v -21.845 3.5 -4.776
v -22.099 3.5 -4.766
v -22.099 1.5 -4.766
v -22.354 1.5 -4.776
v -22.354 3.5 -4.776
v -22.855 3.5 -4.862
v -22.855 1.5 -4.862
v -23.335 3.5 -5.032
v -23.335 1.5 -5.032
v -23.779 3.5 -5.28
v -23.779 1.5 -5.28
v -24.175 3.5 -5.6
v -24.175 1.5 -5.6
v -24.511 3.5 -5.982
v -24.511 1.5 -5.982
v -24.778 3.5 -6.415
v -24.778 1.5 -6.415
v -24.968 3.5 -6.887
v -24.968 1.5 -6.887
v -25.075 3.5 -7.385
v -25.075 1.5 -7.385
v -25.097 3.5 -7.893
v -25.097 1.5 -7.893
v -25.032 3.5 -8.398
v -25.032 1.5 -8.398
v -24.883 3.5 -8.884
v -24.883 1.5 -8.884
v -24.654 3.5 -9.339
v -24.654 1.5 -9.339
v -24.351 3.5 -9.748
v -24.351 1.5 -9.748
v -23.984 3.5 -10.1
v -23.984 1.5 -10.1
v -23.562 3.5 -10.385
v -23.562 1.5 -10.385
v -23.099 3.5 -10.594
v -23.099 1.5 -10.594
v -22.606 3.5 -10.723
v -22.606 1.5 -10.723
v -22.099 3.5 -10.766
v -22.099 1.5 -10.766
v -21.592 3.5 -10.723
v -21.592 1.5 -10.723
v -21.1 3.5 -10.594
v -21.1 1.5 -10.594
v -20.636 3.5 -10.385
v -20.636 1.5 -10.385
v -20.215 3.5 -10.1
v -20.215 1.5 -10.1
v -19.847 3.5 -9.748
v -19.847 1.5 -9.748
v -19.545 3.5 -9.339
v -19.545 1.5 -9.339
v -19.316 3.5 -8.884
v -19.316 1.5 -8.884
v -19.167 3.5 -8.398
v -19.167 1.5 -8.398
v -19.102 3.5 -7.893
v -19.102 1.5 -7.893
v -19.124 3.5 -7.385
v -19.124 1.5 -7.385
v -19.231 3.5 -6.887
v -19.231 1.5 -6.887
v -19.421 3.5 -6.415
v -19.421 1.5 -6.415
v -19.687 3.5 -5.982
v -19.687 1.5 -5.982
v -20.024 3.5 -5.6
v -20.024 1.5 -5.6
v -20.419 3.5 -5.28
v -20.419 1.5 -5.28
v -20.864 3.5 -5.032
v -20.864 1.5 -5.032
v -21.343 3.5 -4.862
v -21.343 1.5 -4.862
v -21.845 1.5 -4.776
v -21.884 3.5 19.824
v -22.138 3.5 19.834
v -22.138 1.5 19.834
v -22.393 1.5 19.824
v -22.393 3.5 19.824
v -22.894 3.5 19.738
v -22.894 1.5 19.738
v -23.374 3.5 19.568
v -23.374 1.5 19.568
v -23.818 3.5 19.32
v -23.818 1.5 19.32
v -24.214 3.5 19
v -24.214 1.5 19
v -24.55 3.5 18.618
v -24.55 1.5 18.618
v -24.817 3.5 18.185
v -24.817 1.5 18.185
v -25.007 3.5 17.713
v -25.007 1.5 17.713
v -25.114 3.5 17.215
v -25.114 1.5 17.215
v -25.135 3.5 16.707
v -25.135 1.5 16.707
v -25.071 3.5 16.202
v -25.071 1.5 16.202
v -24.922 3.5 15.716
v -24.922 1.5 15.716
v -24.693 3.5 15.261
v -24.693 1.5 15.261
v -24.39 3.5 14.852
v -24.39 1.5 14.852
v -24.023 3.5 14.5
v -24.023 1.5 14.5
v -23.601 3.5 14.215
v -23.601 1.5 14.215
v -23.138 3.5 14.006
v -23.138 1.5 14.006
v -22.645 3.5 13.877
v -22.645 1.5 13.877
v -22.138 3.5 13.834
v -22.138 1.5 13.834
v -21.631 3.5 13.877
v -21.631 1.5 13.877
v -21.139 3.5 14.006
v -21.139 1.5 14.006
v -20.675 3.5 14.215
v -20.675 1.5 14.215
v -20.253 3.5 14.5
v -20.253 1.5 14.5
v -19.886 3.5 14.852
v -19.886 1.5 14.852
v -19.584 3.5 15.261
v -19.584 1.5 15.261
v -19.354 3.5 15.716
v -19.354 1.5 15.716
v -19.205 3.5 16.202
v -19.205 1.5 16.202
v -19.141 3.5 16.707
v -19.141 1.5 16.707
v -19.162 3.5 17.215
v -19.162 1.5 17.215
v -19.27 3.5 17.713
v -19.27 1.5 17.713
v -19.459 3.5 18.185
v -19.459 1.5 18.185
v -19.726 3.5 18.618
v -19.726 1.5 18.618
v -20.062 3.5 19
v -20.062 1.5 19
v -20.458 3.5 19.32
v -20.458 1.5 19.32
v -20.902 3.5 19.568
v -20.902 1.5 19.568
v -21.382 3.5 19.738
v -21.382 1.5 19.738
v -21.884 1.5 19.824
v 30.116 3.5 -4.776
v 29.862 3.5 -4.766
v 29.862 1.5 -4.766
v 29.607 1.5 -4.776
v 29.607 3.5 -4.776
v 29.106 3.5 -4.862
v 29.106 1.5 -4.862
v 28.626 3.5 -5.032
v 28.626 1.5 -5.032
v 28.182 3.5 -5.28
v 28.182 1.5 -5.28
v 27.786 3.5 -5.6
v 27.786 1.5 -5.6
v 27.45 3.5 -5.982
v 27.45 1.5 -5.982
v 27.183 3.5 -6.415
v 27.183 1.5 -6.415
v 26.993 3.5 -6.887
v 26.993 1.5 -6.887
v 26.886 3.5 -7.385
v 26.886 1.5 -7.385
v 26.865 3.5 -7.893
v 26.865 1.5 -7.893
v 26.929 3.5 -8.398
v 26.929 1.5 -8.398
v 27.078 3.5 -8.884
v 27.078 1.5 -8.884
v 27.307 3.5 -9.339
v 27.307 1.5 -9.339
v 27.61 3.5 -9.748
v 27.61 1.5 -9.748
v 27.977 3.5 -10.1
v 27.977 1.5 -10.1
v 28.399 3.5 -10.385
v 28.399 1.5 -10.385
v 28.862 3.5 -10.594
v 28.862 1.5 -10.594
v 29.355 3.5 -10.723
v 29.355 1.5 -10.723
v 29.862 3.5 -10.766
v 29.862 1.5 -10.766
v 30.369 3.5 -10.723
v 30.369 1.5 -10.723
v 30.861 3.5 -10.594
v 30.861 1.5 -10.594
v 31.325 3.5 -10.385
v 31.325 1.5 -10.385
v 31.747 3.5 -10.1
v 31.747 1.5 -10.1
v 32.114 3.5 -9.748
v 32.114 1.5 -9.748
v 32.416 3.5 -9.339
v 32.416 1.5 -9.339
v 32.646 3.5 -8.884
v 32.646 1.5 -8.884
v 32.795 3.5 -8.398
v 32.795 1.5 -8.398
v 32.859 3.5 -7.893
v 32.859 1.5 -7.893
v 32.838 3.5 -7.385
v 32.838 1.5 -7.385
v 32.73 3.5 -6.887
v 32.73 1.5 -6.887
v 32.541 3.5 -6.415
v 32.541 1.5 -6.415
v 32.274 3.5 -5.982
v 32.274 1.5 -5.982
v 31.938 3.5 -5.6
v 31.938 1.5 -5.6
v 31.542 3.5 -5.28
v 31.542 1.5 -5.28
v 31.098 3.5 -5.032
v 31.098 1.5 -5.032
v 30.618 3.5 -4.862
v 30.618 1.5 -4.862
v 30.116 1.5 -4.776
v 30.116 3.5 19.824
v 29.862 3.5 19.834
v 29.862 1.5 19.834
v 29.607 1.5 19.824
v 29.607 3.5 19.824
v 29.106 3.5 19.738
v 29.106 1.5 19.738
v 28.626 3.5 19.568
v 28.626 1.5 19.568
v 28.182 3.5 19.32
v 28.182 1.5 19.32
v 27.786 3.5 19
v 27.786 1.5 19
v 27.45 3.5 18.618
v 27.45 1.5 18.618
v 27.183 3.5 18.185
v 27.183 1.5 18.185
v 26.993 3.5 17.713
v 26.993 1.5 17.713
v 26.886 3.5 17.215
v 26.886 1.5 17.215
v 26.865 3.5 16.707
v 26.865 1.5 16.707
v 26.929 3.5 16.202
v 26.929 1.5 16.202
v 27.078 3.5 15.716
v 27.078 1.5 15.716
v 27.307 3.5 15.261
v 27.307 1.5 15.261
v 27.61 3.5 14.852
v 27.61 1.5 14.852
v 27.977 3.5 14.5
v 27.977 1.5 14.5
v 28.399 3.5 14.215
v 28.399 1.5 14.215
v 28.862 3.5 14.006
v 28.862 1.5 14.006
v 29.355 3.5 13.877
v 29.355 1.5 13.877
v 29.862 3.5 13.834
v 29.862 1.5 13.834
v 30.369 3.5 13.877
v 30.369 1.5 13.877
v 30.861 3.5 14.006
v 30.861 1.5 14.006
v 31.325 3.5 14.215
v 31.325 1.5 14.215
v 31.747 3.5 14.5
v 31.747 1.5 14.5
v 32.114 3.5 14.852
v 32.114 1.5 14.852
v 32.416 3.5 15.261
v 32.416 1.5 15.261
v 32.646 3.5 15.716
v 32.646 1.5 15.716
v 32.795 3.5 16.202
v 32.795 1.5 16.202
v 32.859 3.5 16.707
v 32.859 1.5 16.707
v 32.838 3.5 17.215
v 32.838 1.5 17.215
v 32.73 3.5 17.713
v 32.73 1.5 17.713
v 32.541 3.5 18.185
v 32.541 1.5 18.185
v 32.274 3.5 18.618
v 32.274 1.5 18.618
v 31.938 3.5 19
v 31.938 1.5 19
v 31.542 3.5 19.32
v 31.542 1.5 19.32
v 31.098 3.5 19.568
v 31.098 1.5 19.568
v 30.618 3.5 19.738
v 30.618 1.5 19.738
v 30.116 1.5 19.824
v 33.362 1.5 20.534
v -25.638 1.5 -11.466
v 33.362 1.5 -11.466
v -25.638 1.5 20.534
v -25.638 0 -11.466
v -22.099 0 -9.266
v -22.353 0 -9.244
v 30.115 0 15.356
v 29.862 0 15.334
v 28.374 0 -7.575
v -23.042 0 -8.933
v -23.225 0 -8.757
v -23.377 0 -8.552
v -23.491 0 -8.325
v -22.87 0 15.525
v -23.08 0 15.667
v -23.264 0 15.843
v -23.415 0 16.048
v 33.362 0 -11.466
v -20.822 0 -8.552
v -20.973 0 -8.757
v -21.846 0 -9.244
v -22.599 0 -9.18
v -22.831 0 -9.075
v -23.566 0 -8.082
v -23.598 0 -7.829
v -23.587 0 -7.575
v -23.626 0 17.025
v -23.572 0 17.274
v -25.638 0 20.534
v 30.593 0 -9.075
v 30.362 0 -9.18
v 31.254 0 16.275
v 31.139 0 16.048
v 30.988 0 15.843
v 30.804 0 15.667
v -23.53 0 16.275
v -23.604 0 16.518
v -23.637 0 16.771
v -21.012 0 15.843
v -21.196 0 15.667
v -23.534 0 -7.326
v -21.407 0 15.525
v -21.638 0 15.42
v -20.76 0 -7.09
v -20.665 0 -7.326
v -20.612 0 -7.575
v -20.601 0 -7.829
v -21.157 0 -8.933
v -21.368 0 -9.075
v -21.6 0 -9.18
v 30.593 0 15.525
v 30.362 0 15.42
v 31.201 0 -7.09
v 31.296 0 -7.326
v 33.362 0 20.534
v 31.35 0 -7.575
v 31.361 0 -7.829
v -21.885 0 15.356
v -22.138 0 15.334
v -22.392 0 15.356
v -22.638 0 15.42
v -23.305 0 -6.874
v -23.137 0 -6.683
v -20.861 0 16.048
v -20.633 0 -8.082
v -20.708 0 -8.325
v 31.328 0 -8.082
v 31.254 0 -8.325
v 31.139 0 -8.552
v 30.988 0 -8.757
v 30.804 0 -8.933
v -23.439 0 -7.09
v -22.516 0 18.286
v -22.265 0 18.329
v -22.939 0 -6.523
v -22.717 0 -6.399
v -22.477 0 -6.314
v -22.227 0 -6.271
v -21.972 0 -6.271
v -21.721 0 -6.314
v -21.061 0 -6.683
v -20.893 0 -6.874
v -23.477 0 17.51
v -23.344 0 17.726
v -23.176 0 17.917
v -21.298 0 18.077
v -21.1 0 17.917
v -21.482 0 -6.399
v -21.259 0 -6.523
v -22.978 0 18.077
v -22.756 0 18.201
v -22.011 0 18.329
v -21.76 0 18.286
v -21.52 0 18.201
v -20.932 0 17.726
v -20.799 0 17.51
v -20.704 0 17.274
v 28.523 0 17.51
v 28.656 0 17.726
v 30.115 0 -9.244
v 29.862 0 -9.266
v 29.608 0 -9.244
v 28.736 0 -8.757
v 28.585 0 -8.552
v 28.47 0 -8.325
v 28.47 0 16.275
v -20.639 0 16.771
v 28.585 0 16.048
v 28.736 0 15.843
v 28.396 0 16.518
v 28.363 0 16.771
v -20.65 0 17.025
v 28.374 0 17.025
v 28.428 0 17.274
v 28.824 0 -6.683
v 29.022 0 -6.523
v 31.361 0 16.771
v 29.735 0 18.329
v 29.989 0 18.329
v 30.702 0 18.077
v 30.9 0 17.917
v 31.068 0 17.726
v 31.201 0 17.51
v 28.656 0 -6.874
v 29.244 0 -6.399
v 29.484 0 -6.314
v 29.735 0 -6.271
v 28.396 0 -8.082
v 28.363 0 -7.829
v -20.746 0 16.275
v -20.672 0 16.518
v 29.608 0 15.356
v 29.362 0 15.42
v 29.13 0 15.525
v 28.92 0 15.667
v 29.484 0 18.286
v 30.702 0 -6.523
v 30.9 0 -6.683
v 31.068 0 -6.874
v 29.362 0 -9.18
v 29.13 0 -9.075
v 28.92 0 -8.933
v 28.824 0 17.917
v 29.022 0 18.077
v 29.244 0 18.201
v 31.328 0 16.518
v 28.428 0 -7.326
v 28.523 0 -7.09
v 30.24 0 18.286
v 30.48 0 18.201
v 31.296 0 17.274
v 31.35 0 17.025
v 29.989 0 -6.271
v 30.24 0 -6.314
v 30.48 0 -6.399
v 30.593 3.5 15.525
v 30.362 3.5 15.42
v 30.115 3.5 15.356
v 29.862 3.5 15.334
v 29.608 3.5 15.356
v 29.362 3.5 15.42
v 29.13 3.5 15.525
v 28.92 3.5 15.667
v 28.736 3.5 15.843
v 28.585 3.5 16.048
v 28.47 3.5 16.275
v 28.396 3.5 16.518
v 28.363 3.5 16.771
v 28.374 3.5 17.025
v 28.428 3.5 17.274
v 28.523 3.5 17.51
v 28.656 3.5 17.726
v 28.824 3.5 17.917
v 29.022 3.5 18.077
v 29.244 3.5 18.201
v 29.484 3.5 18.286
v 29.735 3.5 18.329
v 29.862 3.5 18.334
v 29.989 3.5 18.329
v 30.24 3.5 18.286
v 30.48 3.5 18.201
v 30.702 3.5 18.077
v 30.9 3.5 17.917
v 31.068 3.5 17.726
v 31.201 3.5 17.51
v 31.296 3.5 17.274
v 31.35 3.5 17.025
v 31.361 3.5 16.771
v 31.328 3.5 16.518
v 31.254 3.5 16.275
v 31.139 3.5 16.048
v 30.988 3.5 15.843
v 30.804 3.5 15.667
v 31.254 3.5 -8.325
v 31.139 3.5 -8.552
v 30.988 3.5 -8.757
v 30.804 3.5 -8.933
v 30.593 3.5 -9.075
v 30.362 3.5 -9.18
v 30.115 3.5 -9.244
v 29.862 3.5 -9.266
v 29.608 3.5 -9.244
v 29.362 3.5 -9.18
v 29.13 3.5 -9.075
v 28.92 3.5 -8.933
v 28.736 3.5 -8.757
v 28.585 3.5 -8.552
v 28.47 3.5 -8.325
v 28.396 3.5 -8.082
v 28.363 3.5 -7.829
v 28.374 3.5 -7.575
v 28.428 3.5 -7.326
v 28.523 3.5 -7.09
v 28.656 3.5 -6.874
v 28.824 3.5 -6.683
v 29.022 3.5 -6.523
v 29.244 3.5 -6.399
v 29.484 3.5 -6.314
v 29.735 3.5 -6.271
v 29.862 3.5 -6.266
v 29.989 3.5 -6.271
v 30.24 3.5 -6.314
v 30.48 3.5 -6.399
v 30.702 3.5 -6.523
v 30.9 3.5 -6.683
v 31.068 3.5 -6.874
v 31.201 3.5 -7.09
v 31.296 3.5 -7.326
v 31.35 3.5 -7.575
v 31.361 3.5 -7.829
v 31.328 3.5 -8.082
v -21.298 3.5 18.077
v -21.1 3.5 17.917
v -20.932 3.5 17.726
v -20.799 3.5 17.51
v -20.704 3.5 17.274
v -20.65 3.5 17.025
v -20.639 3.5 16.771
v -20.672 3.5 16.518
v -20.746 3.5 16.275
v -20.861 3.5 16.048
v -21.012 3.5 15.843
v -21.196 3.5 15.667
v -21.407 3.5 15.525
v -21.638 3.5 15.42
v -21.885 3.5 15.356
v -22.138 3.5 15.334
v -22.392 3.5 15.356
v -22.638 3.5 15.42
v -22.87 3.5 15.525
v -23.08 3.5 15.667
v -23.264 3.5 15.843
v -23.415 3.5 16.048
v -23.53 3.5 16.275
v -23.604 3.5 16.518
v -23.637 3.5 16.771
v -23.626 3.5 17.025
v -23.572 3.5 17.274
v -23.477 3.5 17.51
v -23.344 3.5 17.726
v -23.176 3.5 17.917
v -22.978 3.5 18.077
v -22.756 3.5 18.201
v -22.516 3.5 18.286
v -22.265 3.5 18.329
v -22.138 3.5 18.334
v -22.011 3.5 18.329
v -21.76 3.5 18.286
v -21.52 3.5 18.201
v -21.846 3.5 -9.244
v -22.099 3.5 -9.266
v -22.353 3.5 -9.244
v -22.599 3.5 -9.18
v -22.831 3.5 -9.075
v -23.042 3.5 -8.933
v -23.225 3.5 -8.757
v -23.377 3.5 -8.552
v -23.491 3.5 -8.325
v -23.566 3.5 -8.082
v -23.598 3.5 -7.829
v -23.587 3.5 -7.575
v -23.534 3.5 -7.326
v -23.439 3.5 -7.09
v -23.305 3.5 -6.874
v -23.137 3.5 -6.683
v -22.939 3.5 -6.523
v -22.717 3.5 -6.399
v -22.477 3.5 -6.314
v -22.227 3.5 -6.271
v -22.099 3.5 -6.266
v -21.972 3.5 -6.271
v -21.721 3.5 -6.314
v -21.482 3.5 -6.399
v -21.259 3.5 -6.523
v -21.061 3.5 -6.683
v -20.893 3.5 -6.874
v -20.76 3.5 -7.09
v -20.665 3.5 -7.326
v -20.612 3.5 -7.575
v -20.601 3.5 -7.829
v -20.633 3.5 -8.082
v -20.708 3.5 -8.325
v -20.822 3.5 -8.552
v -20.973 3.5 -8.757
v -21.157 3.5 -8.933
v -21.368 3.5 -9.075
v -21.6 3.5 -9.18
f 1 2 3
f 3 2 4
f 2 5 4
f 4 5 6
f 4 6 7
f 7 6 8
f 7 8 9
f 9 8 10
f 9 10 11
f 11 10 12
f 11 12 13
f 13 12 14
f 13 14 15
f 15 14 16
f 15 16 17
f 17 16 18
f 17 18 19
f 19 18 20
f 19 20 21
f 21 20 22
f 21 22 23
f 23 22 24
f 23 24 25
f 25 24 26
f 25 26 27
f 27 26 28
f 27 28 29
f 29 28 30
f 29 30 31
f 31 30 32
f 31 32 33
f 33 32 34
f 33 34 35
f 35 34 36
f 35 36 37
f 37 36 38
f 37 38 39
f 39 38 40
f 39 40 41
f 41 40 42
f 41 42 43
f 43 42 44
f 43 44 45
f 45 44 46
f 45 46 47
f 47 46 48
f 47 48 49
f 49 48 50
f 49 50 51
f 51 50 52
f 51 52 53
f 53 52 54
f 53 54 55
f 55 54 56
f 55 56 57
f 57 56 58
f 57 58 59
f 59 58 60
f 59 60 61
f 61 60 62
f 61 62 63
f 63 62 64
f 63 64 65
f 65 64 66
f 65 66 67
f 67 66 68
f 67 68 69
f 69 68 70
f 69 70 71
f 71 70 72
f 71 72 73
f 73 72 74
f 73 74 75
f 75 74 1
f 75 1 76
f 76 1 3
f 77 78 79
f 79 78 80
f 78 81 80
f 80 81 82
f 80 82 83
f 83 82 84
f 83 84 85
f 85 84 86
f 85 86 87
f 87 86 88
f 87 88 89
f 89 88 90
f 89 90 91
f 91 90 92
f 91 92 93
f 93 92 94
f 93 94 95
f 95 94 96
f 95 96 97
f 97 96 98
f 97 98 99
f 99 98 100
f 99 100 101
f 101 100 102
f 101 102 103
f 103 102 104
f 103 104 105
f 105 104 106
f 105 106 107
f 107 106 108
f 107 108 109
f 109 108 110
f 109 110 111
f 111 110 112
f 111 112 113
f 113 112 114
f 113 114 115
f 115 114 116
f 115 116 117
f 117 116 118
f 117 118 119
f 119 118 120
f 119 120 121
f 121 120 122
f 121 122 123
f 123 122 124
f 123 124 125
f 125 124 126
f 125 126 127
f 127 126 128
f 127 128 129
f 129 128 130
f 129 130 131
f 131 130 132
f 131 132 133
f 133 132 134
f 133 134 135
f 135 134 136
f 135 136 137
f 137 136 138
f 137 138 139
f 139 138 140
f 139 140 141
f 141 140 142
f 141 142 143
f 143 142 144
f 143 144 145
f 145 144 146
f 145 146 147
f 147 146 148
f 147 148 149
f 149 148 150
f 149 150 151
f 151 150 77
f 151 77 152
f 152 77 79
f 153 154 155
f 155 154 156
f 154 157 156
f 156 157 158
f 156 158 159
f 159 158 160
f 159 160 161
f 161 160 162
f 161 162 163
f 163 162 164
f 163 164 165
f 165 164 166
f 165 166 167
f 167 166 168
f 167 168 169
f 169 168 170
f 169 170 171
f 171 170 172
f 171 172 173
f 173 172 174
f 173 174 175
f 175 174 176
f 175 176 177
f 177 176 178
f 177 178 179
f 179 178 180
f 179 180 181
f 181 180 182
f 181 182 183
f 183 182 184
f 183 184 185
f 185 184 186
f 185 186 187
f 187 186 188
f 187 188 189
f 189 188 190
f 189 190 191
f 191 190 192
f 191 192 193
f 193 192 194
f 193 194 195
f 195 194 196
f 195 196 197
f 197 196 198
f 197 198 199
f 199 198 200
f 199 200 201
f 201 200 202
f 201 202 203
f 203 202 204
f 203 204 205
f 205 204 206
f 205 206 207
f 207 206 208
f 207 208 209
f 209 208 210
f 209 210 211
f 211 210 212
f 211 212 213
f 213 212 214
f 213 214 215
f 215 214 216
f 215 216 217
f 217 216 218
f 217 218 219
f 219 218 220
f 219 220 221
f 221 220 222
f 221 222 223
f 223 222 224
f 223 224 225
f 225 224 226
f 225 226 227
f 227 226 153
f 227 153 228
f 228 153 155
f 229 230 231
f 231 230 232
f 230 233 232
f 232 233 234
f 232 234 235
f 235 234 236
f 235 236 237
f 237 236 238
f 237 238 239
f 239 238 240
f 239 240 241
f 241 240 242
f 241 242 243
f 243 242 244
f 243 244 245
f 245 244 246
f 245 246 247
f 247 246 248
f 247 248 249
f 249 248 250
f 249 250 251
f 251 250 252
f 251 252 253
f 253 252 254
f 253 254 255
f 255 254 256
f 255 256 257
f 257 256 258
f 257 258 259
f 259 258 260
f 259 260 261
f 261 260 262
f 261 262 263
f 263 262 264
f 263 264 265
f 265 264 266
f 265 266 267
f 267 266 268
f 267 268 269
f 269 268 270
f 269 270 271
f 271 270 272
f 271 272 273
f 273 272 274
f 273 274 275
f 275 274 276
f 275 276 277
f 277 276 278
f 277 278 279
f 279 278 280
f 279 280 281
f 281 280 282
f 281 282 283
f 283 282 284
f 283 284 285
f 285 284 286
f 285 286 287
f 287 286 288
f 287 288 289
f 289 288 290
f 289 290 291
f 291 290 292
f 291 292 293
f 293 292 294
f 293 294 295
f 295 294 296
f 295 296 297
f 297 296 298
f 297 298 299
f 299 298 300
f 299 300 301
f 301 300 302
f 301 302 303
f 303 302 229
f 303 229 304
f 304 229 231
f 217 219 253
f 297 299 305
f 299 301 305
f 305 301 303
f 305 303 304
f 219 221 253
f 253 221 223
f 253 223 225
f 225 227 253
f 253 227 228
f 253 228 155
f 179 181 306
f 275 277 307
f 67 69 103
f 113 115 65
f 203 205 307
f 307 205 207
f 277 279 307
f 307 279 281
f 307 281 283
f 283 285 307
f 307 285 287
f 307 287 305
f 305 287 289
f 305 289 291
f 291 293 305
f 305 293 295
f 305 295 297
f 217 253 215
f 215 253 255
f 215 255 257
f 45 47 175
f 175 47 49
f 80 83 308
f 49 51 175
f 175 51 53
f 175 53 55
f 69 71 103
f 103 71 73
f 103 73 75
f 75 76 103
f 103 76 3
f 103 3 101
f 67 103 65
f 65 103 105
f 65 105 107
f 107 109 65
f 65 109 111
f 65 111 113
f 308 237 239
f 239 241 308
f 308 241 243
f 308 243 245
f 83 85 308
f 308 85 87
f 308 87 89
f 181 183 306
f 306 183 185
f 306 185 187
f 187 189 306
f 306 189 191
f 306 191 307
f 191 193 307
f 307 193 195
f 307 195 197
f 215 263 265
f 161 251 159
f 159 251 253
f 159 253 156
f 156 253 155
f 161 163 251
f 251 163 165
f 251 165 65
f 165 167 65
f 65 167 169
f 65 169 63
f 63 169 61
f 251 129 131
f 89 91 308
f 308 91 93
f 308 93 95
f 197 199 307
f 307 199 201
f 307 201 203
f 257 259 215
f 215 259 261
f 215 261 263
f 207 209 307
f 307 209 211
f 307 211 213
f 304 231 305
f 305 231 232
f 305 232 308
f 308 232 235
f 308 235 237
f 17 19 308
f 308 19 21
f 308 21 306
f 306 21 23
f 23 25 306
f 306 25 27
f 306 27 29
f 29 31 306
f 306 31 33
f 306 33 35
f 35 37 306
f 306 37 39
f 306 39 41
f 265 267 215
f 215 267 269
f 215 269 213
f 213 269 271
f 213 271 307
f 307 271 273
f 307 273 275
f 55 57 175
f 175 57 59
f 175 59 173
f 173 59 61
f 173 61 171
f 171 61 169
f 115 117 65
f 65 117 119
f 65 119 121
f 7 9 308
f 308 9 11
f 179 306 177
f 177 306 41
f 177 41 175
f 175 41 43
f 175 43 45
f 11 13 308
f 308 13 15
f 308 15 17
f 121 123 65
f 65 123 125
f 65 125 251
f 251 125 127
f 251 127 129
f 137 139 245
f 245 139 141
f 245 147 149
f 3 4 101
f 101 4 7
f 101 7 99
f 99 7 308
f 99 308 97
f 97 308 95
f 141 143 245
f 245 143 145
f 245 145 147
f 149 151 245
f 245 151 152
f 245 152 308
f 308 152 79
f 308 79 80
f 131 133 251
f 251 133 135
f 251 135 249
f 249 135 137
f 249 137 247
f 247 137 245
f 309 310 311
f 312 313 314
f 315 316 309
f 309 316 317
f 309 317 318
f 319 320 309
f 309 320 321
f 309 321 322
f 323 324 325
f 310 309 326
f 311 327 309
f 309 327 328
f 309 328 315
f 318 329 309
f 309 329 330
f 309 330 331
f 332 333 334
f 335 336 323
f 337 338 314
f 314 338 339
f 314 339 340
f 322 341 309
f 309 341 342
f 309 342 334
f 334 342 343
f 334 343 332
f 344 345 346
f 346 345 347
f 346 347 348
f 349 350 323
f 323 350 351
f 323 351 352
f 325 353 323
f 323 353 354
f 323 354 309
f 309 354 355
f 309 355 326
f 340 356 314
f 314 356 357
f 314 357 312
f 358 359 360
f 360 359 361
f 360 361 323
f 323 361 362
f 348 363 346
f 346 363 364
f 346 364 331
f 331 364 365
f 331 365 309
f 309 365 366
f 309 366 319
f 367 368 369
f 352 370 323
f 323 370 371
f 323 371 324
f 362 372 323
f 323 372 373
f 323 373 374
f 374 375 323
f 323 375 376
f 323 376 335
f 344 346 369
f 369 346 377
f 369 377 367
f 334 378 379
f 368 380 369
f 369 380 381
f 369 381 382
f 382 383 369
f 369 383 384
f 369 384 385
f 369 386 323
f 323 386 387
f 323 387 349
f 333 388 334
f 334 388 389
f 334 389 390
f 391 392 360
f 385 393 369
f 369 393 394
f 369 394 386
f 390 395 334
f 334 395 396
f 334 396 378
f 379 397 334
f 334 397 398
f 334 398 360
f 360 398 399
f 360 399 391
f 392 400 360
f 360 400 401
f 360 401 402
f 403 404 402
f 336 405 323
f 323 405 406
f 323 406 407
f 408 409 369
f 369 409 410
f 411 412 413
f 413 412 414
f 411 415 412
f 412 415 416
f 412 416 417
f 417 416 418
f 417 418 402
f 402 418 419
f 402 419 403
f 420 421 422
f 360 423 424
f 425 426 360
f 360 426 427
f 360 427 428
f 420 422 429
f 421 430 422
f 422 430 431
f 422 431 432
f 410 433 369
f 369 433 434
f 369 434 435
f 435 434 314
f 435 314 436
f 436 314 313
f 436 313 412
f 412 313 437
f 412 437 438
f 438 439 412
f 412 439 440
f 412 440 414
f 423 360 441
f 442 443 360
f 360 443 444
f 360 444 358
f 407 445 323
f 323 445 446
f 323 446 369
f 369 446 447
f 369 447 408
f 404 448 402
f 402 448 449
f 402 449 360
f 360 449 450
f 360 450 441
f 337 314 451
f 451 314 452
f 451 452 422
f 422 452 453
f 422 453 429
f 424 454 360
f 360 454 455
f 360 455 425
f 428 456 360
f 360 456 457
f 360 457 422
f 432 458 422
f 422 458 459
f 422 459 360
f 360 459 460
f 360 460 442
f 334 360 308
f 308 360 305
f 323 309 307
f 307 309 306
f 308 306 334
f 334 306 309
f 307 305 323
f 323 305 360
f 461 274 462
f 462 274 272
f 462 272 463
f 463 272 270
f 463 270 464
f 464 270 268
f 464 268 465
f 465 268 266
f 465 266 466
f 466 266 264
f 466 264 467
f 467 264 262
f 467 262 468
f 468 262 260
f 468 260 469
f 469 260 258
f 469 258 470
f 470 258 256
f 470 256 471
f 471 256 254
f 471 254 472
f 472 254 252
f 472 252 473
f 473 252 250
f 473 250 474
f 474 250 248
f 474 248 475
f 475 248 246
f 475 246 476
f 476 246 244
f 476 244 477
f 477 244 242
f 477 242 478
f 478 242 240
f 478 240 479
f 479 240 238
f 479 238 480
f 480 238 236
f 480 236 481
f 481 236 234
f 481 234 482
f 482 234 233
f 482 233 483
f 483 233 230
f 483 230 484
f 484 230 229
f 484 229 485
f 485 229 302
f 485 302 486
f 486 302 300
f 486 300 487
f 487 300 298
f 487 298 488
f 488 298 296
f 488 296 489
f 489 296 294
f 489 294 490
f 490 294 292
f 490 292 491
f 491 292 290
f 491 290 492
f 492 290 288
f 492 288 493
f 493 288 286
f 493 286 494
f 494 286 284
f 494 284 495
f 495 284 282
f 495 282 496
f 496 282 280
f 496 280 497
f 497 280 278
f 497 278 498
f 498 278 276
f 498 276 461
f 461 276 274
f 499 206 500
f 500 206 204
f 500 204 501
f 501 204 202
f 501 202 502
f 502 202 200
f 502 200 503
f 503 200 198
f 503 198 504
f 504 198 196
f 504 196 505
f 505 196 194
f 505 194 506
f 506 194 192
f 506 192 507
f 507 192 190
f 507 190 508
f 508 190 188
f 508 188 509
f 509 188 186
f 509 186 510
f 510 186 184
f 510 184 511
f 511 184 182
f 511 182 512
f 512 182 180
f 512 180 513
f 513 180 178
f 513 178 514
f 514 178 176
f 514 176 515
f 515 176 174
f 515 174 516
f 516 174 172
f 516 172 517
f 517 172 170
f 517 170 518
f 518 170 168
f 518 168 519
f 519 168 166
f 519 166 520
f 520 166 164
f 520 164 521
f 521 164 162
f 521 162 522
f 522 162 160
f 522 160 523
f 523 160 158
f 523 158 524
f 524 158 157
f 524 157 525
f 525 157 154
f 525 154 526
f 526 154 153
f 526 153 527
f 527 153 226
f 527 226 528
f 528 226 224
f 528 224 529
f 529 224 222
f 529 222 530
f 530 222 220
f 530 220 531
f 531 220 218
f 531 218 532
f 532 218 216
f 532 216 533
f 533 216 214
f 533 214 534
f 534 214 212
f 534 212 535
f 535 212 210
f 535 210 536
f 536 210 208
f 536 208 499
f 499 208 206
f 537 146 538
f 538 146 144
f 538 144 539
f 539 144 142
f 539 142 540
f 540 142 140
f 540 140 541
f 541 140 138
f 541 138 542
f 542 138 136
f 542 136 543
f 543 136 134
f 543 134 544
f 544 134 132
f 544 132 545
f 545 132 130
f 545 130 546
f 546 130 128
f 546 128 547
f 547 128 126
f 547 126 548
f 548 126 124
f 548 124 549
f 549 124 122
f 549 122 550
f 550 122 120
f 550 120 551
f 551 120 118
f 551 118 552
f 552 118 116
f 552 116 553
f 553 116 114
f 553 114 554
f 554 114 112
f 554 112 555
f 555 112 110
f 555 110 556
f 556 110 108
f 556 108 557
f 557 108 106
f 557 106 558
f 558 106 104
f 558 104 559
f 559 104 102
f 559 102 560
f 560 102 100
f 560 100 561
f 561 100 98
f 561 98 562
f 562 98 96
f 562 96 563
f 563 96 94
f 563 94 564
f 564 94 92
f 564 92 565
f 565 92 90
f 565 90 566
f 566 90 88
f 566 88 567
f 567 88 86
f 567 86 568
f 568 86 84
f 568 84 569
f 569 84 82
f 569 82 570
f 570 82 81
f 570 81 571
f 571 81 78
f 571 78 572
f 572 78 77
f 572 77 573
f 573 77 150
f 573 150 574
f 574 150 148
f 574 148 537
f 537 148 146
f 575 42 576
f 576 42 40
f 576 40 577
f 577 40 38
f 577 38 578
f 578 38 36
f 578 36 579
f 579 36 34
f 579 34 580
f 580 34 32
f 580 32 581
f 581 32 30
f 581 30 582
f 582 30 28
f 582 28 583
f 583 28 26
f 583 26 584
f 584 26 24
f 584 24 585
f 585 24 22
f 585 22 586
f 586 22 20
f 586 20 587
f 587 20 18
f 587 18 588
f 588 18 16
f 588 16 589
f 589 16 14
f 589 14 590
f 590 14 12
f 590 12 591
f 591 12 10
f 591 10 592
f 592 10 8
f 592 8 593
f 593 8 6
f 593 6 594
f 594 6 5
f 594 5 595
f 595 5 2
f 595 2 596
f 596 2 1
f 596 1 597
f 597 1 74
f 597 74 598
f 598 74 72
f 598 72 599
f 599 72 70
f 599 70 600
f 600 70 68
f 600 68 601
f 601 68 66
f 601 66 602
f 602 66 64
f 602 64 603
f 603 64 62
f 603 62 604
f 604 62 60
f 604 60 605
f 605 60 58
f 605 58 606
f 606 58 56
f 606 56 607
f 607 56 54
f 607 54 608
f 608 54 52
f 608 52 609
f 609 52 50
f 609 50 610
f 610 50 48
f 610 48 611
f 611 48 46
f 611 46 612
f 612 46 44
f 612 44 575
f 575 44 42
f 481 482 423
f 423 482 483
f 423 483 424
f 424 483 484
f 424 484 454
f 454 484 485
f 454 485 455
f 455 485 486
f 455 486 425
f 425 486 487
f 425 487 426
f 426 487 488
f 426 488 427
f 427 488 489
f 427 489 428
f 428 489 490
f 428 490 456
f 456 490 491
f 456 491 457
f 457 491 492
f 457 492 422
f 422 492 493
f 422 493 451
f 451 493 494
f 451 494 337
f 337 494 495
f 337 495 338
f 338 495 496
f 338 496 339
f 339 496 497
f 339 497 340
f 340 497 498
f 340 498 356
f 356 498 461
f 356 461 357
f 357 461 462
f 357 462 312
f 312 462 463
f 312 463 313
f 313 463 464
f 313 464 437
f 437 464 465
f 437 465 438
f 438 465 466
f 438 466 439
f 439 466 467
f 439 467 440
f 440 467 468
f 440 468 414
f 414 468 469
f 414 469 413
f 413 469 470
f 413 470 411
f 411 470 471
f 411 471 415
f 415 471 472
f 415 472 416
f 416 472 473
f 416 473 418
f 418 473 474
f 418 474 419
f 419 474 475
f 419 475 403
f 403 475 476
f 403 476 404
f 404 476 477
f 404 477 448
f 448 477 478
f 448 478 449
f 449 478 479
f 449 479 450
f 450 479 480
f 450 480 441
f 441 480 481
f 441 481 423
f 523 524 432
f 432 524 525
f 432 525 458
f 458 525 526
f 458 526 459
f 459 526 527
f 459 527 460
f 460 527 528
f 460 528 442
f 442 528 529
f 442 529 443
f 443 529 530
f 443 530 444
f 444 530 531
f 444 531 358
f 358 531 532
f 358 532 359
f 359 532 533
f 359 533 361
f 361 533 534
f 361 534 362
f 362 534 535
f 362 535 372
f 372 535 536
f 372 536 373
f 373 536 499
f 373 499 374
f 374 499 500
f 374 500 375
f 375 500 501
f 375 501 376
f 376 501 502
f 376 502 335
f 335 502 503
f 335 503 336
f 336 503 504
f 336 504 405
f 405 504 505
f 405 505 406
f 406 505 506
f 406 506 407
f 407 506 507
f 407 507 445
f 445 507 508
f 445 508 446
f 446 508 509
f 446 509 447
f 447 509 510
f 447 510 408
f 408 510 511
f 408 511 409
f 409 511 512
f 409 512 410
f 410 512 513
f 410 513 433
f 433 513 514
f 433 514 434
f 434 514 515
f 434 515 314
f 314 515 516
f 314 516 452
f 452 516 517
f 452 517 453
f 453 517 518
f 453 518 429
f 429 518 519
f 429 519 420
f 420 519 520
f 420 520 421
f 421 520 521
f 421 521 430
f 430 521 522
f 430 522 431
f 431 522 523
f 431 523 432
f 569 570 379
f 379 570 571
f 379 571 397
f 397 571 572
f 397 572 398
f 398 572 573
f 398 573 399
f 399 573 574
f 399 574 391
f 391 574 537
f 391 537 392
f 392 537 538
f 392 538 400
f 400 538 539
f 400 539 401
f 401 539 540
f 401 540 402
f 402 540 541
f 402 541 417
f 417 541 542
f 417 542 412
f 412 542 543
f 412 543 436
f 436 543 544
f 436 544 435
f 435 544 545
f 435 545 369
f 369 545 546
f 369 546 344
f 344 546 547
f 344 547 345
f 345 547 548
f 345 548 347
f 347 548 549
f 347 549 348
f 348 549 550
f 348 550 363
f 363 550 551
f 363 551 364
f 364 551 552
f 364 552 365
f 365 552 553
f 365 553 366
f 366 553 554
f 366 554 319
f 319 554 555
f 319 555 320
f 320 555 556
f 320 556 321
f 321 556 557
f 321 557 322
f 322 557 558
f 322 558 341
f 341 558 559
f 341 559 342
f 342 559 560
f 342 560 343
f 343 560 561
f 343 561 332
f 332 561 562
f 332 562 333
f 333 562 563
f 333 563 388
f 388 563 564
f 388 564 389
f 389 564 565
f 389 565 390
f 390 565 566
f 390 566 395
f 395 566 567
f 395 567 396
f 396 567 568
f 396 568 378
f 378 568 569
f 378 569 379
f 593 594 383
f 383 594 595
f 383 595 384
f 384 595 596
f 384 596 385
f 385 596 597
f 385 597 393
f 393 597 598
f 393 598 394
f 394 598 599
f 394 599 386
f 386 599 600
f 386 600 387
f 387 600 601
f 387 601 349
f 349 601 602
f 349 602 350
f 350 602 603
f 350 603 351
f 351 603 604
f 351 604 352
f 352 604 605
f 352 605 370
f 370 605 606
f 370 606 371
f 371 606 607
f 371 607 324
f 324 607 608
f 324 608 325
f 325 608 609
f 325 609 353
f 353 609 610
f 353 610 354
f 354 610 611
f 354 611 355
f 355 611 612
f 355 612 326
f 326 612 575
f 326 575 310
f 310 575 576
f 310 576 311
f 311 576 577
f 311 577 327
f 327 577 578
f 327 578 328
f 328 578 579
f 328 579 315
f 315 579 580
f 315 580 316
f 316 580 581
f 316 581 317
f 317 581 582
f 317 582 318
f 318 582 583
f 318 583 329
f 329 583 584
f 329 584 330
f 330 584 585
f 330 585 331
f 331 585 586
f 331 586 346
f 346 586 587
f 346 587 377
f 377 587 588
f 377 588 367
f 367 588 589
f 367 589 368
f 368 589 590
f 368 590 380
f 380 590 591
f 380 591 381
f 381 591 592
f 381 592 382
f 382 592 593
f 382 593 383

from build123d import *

# Parameters (mm, degrees)
SKETCH_2_W          = 57
SKETCH_2_H          = 40.4
EXTRUDE_1_DEPTH     = 1.5
SKETCH_4_R          = 3
SKETCH_4_R_2        = 1.5
EXTRUDE_3_DEPTH     = 4
SKETCH_5_W          = 57
SKETCH_5_H          = 4.2
CUT_EXTRUDE_1_DEPTH = 2.5
SKETCH_6_W          = 1
SKETCH_6_H          = 32
EXTRUDE_4_DEPTH     = 1.5
SKETCH_8_R          = 3
SKETCH_8_R_2        = 1.5
CUT_EXTRUDE_3_DEPTH = 2
SKETCH_7_R          = 1.5
CUT_EXTRUDE_4_DEPTH = 4.5


with BuildPart() as part:
    # 草图2 → 凸台-拉伸1 (new body)
    with BuildSketch(Plane(origin=(0, 0, 0), x_dir=(1, 0, 0), z_dir=(0, 1, 0))):
        with Locations((3.861898857, -4.534326193)):
            Rectangle(SKETCH_2_W, SKETCH_2_H)
    extrude(amount=EXTRUDE_1_DEPTH)

    # 草图4 → 凸台-拉伸3 (add)
    with BuildSketch(Plane(origin=(0, 1.5, 0), x_dir=(1, 0, 0), z_dir=(0, 1, 0))):
        with Locations((-22.099370277, 7.765673807)):
            Circle(SKETCH_4_R)
        with Locations((-22.099370277, 7.765673807)):
            Circle(SKETCH_4_R_2, mode=Mode.SUBTRACT)
        with Locations((-22.138101143, -16.834326193)):
            Circle(SKETCH_4_R)
        with Locations((-22.138101143, -16.834326193)):
            Circle(SKETCH_4_R_2, mode=Mode.SUBTRACT)
        with Locations((29.861898857, -16.834326193)):
            Circle(SKETCH_4_R)
        with Locations((29.861898857, -16.834326193)):
            Circle(SKETCH_4_R_2, mode=Mode.SUBTRACT)
        with Locations((29.861898857, 7.765673807)):
            Circle(SKETCH_4_R)
        with Locations((29.861898857, 7.765673807)):
            Circle(SKETCH_4_R_2, mode=Mode.SUBTRACT)
    extrude(amount=EXTRUDE_3_DEPTH)

    # 草图5 → 切除-拉伸1 (cut, through all)
    with BuildSketch(Plane(origin=(0, 1.5, 0), x_dir=(1, 0, 0), z_dir=(0, 1, 0))):
        with Locations((3.861898857, 13.565673807)):
            Rectangle(SKETCH_5_W, SKETCH_5_H)
        with Locations((3.861898857, -22.634326193)):
            Rectangle(SKETCH_5_W, SKETCH_5_H)
    extrude(amount=-CUT_EXTRUDE_1_DEPTH, mode=Mode.SUBTRACT)

    # 草图6 → 凸台-拉伸4 (add)
    with BuildSketch(Plane(origin=(0, 1.5, 0), x_dir=(1, 0, 0), z_dir=(0, 1, 0))):
        with Locations((-25.138101143, -4.534326193)):
            Rectangle(SKETCH_6_W, SKETCH_6_H)
        with Locations((32.861898857, -4.534326193)):
            Rectangle(SKETCH_6_W, SKETCH_6_H)
    extrude(amount=-EXTRUDE_4_DEPTH)

    # 草图8 → 切除-拉伸3 (cut)
    with BuildSketch(Plane(origin=(0, 5.5, 0), x_dir=(1, 0, 0), z_dir=(0, 1, 0))):
        with Locations((-22.138101143, -16.834326193)):
            Circle(SKETCH_8_R)
        with Locations((29.861898857, -16.834326193)):
            Circle(SKETCH_8_R)
        with Locations((29.861898857, -16.834326193)):
            Circle(SKETCH_8_R_2, mode=Mode.SUBTRACT)
        with Locations((29.861898857, 7.765673807)):
            Circle(SKETCH_8_R)
        with Locations((29.861898857, 7.765673807)):
            Circle(SKETCH_8_R_2, mode=Mode.SUBTRACT)
        with Locations((-22.099370277, 7.765673807)):
            Circle(SKETCH_8_R)
        with Locations((-22.099370277, 7.765673807)):
            Circle(SKETCH_8_R_2, mode=Mode.SUBTRACT)
    extrude(amount=-CUT_EXTRUDE_3_DEPTH, mode=Mode.SUBTRACT)

    # 草图7 → 切除-拉伸4 (cut, through all)
    with BuildSketch(Plane.XZ):
        with Locations((29.861898857, 16.834326193)):
            Circle(SKETCH_7_R)
        with Locations((29.861898857, -7.765673807)):
            Circle(SKETCH_7_R)
        with Locations((-22.099370277, -7.765673807)):
            Circle(SKETCH_7_R)
        with Locations((-22.138101143, 16.834326193)):
            Circle(SKETCH_7_R)
    extrude(amount=-CUT_EXTRUDE_4_DEPTH, mode=Mode.SUBTRACT)


solid = part.part
